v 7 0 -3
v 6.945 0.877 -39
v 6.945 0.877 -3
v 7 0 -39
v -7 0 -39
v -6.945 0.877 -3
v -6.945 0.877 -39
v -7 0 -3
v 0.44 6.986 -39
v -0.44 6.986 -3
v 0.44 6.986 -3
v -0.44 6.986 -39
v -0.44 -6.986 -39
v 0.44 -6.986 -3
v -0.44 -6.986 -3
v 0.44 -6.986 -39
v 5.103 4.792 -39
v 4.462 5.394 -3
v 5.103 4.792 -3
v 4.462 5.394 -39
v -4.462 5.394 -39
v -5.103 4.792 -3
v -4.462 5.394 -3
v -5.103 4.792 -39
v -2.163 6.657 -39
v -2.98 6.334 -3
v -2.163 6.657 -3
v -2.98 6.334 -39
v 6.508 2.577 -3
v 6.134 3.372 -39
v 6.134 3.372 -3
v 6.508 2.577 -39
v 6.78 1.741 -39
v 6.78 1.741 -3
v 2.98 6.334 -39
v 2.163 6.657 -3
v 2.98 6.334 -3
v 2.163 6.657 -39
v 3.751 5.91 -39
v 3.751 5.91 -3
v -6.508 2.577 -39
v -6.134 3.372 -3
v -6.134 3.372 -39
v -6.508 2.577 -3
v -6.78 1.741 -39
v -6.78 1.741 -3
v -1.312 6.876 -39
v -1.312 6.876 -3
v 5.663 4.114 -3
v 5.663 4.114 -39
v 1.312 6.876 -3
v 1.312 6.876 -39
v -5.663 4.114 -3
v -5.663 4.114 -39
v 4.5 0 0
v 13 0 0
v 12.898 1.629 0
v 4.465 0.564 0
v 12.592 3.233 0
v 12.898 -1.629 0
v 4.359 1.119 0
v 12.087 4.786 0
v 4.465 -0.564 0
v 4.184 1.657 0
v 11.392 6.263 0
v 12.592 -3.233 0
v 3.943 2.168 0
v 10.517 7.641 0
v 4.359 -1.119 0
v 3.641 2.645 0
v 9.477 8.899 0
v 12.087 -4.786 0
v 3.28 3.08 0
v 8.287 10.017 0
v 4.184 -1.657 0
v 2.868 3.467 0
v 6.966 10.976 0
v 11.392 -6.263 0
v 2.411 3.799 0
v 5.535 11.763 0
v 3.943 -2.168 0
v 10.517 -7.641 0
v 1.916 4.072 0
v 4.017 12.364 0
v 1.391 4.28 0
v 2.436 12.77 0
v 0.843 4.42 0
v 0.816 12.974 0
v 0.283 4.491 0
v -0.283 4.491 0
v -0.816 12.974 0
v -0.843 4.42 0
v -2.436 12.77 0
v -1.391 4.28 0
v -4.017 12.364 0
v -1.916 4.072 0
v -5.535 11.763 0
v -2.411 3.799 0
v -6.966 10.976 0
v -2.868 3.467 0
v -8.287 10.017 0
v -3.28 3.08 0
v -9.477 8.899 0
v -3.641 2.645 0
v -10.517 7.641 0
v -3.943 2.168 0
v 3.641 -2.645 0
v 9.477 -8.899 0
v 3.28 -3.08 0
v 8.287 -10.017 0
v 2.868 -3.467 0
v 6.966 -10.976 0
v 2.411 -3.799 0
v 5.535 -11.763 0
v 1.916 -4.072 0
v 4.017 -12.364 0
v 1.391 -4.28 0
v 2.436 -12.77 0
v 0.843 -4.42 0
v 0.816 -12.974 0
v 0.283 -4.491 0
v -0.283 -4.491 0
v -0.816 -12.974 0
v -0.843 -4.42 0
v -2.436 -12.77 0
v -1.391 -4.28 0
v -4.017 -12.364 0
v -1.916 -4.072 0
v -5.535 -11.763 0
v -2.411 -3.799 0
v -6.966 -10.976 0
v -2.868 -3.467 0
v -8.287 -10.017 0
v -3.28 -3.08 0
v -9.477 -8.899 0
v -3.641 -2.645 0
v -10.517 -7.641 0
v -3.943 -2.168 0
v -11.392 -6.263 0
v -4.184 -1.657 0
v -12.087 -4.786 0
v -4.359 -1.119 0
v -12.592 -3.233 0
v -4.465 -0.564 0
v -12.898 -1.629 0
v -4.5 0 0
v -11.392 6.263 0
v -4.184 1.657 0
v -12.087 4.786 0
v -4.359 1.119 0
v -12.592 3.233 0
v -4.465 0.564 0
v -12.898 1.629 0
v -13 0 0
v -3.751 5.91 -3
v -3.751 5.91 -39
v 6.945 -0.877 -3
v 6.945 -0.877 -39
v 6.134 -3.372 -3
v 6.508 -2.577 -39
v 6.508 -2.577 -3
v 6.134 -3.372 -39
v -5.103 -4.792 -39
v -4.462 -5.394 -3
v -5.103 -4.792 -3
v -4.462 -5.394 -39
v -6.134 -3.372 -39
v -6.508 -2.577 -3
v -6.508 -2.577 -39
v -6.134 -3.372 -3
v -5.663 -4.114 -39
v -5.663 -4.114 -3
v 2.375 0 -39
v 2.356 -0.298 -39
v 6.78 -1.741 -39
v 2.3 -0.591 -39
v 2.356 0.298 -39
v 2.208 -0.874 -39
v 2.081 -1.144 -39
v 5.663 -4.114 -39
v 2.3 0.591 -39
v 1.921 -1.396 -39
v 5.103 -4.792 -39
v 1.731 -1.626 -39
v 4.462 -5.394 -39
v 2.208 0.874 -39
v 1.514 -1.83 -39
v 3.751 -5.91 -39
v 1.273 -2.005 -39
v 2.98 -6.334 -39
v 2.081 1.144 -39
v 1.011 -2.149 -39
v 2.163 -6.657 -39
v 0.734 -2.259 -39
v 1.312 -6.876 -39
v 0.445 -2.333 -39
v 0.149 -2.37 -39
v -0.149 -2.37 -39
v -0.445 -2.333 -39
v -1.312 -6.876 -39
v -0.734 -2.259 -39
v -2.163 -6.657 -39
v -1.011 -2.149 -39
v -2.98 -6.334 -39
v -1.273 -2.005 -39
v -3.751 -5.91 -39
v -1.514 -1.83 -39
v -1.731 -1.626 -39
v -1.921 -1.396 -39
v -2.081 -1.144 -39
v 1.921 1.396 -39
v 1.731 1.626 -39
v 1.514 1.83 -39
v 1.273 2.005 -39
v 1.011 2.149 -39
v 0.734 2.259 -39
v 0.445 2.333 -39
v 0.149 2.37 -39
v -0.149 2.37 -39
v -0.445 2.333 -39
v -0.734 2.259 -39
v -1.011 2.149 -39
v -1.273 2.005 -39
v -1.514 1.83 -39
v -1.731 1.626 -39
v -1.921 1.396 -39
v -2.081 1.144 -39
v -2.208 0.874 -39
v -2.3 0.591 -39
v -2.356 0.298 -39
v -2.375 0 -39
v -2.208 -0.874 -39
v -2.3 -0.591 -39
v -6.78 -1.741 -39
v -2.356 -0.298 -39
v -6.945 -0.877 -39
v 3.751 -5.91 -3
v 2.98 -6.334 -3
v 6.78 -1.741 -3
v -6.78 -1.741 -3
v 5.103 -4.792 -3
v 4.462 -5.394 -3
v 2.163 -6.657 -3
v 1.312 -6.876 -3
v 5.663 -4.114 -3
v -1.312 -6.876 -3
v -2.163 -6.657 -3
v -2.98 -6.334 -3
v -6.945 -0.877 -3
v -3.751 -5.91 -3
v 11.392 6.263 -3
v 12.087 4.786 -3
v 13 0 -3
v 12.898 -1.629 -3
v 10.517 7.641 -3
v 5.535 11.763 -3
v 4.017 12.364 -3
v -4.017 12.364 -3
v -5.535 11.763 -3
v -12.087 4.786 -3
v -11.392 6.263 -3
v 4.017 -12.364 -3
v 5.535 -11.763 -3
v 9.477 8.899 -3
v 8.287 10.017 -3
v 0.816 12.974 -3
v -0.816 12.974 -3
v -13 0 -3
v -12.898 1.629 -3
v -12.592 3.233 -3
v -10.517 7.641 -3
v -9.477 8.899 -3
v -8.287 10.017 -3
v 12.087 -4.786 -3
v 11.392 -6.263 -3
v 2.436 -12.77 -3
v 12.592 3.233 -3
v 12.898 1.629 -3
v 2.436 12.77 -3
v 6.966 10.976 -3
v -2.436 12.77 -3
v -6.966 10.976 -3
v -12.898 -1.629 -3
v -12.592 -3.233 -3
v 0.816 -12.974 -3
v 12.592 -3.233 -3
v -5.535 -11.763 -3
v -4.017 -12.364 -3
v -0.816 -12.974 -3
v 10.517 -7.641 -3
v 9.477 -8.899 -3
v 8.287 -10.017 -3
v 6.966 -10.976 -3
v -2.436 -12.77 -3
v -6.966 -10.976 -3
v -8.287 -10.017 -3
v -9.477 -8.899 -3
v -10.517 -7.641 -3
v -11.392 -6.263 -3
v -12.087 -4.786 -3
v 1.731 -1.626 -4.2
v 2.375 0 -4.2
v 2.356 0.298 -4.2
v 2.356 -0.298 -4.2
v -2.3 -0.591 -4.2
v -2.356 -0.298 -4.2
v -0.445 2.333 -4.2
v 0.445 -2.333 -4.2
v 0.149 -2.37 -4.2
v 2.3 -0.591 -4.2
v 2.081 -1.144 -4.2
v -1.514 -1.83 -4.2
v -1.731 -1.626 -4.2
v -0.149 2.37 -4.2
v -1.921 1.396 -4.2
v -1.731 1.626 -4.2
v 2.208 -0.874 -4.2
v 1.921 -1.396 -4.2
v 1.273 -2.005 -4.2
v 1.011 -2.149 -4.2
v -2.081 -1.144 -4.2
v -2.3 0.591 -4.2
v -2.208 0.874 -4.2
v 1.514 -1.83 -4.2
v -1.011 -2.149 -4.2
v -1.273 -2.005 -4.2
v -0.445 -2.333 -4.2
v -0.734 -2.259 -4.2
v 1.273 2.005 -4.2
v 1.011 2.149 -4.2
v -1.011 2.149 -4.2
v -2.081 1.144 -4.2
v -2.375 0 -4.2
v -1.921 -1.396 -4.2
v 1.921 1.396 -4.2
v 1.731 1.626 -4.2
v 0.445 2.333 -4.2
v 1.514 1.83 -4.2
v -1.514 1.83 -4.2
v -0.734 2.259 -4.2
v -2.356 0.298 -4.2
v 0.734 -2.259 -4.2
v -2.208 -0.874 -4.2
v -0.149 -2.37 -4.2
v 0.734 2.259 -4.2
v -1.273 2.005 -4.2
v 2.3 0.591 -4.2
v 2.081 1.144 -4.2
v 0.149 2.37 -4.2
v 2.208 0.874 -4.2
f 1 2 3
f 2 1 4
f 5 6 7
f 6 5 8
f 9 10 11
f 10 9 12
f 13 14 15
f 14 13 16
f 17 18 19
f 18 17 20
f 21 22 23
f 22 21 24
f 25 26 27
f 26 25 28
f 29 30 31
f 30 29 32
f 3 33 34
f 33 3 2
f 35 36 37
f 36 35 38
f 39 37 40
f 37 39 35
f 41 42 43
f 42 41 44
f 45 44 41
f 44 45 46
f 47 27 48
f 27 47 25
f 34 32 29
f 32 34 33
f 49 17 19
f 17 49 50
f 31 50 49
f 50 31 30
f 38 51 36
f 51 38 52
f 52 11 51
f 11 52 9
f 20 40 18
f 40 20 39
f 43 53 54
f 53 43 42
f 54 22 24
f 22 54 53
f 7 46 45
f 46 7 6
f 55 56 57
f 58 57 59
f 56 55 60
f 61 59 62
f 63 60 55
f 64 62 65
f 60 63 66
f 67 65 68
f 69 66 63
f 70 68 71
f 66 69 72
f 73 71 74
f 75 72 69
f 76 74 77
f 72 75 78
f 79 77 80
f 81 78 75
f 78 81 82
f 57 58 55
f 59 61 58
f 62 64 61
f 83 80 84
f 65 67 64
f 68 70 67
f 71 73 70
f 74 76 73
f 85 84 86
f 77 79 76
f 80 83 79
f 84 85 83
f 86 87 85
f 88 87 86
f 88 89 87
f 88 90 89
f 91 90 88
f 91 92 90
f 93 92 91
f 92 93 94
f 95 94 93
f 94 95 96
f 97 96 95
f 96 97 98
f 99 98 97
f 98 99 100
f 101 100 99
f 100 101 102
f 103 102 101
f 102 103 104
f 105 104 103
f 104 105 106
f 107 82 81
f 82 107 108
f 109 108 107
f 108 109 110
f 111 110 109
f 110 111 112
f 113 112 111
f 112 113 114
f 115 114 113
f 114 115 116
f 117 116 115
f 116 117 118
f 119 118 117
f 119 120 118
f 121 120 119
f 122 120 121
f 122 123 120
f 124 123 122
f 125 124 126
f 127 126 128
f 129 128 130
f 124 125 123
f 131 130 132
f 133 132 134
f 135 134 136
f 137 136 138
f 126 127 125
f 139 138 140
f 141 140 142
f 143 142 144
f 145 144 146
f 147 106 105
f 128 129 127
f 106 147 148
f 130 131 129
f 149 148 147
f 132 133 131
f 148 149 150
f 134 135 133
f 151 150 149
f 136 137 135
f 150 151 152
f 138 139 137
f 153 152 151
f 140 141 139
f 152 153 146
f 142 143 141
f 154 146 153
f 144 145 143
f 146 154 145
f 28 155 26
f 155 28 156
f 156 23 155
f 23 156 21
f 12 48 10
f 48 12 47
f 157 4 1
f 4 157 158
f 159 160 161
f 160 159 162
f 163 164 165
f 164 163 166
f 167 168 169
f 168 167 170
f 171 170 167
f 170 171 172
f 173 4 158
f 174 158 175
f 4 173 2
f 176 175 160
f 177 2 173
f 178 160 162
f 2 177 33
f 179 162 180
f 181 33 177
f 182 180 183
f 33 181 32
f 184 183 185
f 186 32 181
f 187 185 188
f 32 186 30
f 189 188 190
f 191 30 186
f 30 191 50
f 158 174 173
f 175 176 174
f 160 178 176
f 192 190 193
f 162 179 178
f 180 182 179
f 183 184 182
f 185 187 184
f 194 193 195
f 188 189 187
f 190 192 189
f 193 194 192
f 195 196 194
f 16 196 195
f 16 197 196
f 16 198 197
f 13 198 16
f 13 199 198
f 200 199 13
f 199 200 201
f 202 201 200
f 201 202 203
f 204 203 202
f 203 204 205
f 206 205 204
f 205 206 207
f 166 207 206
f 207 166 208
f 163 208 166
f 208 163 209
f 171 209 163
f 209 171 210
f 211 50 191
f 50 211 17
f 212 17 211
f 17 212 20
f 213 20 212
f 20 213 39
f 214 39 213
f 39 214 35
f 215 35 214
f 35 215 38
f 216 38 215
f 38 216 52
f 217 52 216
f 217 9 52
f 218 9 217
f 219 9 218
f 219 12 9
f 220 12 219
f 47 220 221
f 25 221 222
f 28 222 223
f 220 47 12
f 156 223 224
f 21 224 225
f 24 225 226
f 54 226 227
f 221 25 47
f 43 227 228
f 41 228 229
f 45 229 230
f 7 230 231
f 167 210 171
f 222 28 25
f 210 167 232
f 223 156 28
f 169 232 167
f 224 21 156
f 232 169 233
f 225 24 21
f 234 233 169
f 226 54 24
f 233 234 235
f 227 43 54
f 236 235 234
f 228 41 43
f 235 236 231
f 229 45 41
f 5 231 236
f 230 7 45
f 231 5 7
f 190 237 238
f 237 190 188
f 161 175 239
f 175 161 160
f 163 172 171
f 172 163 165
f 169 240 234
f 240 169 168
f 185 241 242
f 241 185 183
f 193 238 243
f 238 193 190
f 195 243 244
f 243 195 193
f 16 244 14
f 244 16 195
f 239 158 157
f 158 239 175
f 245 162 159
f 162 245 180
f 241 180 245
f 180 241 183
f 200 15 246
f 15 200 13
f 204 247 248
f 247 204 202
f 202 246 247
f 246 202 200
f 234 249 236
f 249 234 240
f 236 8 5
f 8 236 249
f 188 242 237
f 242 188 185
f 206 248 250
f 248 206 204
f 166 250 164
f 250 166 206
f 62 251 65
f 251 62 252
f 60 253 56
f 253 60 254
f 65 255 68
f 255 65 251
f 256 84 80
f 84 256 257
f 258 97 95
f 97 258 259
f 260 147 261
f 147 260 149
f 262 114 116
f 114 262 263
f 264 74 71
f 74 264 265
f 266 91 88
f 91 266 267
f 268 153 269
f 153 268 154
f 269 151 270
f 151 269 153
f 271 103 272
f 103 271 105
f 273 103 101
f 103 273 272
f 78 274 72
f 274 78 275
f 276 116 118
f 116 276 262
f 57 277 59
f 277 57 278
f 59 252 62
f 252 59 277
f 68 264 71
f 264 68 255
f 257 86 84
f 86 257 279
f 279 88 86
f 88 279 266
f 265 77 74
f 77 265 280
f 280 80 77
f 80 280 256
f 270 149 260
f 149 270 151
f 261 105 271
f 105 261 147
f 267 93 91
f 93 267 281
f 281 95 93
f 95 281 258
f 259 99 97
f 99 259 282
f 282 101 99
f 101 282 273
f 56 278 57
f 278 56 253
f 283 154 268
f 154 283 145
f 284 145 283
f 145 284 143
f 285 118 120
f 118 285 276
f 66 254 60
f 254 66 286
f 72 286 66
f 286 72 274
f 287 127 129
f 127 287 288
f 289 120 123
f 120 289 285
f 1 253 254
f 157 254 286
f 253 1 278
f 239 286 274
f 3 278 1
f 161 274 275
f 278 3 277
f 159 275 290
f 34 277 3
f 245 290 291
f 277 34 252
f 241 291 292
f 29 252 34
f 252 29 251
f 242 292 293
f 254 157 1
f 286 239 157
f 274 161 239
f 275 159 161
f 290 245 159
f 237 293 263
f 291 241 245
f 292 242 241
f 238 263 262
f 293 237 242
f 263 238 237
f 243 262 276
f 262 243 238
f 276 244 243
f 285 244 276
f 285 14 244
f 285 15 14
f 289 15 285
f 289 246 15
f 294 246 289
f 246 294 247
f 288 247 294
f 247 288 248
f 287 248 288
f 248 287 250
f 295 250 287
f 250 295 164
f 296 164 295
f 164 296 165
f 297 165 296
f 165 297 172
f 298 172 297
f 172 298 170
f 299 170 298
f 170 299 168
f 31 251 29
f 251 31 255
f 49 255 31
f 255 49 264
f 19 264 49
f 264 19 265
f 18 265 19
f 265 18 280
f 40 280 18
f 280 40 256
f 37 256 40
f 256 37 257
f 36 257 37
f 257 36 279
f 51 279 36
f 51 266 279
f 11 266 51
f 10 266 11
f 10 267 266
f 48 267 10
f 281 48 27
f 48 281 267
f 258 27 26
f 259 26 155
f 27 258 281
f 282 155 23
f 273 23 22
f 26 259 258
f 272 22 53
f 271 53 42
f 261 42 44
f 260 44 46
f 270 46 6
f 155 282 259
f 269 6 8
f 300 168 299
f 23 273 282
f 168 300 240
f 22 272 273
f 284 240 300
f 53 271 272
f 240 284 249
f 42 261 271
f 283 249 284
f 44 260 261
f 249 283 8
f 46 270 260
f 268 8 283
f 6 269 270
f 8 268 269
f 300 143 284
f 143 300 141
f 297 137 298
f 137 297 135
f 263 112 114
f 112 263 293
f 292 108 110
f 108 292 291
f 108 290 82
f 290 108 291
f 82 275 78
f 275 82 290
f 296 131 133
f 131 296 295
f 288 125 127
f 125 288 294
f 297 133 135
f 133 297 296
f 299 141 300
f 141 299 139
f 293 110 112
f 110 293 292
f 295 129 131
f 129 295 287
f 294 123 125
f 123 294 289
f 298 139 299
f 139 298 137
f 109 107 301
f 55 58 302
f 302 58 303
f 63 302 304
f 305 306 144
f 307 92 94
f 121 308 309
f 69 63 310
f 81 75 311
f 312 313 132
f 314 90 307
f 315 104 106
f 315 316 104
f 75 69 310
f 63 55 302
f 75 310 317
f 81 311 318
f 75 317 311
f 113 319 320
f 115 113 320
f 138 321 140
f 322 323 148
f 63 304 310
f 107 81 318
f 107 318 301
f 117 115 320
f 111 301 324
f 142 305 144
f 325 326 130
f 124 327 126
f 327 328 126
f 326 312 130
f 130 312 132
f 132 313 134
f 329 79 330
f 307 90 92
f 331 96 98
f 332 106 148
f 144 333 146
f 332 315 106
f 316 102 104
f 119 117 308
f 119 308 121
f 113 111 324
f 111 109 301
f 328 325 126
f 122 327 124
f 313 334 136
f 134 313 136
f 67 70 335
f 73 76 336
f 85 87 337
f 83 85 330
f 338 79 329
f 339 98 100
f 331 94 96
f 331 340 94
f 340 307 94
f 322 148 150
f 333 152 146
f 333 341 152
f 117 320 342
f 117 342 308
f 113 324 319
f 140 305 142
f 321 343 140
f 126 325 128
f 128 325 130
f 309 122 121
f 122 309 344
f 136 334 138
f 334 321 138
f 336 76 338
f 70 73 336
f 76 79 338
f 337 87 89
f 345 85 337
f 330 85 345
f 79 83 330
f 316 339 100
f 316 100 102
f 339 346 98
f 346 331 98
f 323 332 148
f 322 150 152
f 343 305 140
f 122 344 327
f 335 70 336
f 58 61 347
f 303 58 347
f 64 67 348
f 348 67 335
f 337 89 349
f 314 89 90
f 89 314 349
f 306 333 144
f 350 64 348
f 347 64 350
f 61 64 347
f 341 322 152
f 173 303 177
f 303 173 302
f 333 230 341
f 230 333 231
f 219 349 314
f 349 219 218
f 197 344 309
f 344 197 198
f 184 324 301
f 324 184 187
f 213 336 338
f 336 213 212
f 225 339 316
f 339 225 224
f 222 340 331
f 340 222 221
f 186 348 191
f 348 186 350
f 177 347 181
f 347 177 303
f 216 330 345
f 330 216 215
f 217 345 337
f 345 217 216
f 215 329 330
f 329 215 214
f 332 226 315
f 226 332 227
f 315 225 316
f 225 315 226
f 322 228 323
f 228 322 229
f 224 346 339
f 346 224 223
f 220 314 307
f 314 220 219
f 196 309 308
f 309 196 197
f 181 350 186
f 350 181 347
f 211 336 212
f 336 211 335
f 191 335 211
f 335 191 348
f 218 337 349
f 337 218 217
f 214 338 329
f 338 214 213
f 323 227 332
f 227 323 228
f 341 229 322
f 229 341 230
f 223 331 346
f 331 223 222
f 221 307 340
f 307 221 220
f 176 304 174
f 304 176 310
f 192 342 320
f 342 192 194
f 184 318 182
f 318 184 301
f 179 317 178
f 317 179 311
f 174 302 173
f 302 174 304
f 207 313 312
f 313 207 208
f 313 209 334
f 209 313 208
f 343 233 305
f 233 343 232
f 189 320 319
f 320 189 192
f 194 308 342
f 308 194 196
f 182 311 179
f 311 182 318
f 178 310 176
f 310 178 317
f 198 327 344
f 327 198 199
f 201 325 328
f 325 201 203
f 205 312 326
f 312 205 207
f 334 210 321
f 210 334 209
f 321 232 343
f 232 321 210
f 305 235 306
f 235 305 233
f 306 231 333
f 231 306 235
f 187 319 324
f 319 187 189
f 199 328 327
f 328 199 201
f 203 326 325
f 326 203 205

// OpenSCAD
$fn = 50;


difference() {
	union() {
		translate(v = [0, 0, -39.0000000000]) {
			cylinder(h = 39, r = 7.0000000000);
		}
		translate(v = [0, 0, -3.0000000000]) {
			cylinder(h = 3, r = 13.0000000000);
		}
	}
	union() {
		translate(v = [0, 0, 0]) {
			rotate(a = [0, 0, 0]) {
				difference() {
					union() {
						#translate(v = [0, 0, -39.0000000000]) {
							cylinder(h = 39, r = 2.2500000000);
						}
						#translate(v = [0, 0, -4.2000000000]) {
							cylinder(h = 4.2000000000, r = 7.0000000000, r1 = 2.3750000000, r2 = 4.5000000000);
						}
						#translate(v = [0, 0, -39.0000000000]) {
							cylinder(h = 39, r = 2.3750000000);
						}
						#translate(v = [0, 0, -39.0000000000]) {
							cylinder(h = 39, r = 2.2500000000);
						}
					}
					union();
				}
			}
		}
	}
}
